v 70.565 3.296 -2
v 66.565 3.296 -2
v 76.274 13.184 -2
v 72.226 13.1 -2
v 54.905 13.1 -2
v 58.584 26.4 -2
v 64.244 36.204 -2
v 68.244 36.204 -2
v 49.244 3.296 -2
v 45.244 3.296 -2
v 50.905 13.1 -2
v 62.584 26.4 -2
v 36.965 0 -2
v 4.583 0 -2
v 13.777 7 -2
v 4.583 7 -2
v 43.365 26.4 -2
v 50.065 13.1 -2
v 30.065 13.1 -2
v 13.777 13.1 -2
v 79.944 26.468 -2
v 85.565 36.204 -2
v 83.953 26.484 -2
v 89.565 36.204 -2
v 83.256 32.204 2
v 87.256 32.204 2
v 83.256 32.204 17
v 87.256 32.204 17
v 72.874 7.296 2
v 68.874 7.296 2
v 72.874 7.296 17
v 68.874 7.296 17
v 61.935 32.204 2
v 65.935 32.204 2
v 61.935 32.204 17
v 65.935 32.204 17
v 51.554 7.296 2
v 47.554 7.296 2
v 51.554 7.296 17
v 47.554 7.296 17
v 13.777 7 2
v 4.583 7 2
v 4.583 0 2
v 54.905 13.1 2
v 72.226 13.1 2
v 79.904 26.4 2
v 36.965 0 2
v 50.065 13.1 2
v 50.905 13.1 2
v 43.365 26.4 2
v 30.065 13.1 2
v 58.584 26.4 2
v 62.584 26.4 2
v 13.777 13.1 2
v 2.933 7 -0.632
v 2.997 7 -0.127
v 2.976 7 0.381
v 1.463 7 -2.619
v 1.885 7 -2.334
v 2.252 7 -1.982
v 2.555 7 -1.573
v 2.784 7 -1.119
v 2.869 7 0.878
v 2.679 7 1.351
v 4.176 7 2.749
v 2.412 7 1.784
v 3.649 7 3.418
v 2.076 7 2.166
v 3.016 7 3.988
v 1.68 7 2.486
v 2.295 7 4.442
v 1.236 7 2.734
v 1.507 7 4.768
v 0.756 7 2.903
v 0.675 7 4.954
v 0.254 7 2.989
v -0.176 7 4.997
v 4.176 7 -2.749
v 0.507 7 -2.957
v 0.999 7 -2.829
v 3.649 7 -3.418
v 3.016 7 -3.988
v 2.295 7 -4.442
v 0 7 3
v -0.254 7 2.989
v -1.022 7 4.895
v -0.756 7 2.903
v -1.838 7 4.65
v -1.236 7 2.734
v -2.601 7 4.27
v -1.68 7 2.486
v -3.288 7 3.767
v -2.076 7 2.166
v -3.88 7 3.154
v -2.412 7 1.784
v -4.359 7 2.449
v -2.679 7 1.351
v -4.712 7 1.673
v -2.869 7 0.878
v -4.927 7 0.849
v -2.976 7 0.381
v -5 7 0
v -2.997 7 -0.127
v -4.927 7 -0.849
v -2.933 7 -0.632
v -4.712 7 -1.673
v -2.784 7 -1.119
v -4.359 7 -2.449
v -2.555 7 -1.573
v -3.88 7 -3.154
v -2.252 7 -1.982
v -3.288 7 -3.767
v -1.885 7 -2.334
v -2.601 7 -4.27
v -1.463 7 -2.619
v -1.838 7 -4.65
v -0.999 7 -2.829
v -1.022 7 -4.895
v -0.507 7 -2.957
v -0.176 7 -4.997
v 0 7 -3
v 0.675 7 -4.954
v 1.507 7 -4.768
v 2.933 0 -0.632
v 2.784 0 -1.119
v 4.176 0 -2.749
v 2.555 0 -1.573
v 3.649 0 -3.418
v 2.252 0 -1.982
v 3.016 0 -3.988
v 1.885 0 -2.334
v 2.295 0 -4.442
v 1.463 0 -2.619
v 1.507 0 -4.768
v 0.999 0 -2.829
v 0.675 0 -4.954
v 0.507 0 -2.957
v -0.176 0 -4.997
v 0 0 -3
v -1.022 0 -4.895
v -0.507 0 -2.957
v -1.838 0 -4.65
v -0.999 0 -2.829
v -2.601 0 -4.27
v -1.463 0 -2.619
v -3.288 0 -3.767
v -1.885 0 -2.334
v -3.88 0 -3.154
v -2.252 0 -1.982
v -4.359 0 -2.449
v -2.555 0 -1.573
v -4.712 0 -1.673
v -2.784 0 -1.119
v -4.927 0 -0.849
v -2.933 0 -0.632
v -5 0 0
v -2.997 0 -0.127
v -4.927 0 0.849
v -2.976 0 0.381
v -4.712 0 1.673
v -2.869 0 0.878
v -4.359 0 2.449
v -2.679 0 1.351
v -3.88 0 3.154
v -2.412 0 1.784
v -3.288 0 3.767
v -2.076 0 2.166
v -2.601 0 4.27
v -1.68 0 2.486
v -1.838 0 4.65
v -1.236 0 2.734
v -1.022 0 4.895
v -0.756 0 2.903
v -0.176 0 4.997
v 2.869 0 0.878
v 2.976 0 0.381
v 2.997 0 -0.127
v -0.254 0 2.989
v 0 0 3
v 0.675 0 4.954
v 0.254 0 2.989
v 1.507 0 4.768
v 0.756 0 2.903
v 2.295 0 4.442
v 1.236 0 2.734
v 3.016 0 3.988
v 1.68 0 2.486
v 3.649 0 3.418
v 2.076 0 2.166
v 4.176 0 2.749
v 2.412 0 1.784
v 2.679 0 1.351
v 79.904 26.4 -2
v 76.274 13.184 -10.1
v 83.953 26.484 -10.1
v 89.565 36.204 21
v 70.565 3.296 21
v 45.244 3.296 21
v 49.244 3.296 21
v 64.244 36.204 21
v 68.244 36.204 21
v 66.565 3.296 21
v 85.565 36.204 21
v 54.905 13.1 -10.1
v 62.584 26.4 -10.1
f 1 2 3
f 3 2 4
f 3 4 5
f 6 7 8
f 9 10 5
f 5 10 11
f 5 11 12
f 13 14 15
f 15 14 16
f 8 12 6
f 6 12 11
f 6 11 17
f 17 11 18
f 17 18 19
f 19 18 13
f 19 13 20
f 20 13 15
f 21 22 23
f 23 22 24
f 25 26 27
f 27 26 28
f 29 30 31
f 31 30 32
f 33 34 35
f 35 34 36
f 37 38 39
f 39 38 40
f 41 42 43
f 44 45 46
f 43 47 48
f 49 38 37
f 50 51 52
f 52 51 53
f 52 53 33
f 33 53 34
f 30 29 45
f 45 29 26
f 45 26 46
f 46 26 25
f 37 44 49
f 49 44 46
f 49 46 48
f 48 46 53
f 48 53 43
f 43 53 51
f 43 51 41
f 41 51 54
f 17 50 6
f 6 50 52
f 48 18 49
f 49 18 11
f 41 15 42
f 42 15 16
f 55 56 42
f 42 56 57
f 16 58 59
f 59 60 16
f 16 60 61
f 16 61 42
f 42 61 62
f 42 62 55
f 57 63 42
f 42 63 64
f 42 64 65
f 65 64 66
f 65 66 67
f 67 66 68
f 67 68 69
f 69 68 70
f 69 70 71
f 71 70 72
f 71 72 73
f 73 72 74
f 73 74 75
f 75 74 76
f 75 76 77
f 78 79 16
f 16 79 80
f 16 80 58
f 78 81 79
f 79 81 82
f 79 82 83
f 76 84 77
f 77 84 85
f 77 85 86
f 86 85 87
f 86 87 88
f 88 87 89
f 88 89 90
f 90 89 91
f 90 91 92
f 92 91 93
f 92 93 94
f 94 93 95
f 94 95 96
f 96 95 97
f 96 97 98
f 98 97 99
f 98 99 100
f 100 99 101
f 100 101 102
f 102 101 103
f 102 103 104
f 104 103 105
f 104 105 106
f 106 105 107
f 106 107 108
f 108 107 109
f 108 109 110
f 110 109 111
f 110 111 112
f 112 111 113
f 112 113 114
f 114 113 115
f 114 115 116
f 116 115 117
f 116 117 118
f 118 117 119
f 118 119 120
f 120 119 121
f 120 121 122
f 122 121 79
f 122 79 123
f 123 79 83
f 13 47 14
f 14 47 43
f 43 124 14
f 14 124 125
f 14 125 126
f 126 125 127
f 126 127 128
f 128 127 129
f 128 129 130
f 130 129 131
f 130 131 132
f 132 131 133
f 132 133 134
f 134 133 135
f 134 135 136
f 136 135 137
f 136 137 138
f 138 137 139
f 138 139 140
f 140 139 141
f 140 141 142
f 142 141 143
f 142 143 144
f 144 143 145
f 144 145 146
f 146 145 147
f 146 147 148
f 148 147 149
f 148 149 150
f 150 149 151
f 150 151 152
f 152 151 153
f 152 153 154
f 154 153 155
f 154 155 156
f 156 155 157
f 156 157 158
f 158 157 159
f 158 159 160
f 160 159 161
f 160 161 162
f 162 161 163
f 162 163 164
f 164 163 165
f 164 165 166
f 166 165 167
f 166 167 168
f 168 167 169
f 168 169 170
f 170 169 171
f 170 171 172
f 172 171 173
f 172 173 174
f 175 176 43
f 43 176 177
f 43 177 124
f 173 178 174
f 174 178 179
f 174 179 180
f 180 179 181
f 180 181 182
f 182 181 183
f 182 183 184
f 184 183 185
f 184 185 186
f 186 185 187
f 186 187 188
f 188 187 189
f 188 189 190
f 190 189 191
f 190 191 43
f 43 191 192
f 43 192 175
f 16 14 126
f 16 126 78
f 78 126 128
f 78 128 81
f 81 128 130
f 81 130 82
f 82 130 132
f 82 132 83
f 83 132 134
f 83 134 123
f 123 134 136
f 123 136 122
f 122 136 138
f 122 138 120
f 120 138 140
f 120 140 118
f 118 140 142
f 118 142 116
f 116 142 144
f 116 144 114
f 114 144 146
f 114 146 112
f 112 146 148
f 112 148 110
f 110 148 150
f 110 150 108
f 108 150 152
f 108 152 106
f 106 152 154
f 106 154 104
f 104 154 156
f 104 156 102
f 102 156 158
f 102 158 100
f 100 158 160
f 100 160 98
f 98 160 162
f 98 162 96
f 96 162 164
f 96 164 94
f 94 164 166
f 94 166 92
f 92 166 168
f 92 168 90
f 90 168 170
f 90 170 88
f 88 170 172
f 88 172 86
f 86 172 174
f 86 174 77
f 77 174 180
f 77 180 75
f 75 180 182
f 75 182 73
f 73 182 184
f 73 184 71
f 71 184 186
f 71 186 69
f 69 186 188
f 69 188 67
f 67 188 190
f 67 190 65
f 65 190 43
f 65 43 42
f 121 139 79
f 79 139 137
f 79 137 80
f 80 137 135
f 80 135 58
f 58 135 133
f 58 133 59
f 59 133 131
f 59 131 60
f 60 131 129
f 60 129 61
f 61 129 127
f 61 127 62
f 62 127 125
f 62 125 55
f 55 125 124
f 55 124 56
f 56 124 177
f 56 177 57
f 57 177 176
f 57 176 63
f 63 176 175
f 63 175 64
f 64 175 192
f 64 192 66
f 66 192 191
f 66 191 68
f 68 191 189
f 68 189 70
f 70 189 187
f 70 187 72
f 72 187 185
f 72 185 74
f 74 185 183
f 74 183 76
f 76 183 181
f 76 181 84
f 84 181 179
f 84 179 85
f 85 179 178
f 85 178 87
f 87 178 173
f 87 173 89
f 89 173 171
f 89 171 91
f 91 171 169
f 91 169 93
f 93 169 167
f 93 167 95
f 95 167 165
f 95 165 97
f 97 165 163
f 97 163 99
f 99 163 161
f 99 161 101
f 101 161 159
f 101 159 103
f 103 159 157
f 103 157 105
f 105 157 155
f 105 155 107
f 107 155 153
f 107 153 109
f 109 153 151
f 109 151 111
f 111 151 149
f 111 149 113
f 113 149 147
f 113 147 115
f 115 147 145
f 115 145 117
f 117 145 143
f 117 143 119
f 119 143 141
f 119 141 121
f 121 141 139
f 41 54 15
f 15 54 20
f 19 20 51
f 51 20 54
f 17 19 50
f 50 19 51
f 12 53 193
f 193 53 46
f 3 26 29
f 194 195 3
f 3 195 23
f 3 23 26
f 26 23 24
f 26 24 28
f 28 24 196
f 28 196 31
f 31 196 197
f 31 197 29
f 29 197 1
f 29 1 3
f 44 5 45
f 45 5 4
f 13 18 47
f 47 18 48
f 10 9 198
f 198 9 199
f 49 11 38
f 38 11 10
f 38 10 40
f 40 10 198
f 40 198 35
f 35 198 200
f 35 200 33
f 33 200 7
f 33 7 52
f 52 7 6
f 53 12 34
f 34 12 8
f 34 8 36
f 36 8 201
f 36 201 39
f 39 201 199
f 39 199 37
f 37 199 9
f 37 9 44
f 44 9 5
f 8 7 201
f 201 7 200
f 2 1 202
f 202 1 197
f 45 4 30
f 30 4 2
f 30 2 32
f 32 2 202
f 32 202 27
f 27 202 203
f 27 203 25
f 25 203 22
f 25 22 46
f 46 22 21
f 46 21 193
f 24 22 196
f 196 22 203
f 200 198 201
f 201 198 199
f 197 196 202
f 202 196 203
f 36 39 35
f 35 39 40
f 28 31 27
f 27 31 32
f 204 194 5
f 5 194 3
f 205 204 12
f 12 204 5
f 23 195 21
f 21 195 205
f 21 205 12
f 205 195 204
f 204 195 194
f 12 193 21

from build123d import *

# Parameters (mm, degrees)
SKETCH1_R           = 5
SKETCH1_R_2         = 3
BOSS_EXTRUDE1_DEPTH = 7
SKETCH2_R           = 3
BOSS_EXTRUDE2_DEPTH = 7
SKETCH3_W           = 16.288395929
SKETCH3_H           = 13.1
BOSS_EXTRUDE3_DEPTH = 4
SKETCH4_W           = 4.517614974
SKETCH4_H           = 7
CUT_EXTRUDE1_DEPTH  = 4
BOSS_EXTRUDE4_DEPTH = 4
BOSS_EXTRUDE5_DEPTH = 4
BOSS_EXTRUDE6_DEPTH = 19
BOSS_EXTRUDE7_DEPTH = 4
BOSS_EXTRUDE8_DEPTH = 8.1


with BuildPart() as part:
    # Sketch1 → Boss-Extrude1 (new body)
    with BuildSketch(Plane(origin=(0, 0, 0), x_dir=(1, 0, 0), z_dir=(0, 1, 0))):
        with Locations(Location((0, 0, 0), (0, 0, 270))):
            Circle(SKETCH1_R)
        with Locations(Location((0, 0, 0), (0, 0, 270))):
            Circle(SKETCH1_R_2, mode=Mode.SUBTRACT)
    extrude(amount=BOSS_EXTRUDE1_DEPTH)

    # Sketch2 → Boss-Extrude2 (add, through all)
    with BuildSketch(Plane(origin=(0, 7, 0), x_dir=(1, 0, 0), z_dir=(0, 1, 0))):
        with BuildLine():
            Line((4.582575695, -2), (34.582575695, -2))
            Line((34.582575695, -2), (34.582575695, 2))
            Line((34.582575695, 2), (4.582575695, 2))
            ThreePointArc((4.582575695, 2), (-5, 0), (4.582575695, -2))
        make_face()
        with Locations(Location((0, 0, 0), (0, 0, 270))):
            Circle(SKETCH2_R, mode=Mode.SUBTRACT)
    extrude(amount=-BOSS_EXTRUDE2_DEPTH)

    # Sketch3 → Boss-Extrude3 (add)
    with BuildSketch(Plane.XY.offset(2)):
        with Locations((21.920762757, 6.55)):
            Rectangle(SKETCH3_W, SKETCH3_H)
    extrude(amount=-BOSS_EXTRUDE3_DEPTH)

    # Sketch4 → Cut-Extrude1 (cut)
    with BuildSketch(Plane.XY.offset(2)):
        with Locations((32.323768208, 3.5)):
            Rectangle(SKETCH4_W, SKETCH4_H)
    extrude(amount=-CUT_EXTRUDE1_DEPTH, mode=Mode.SUBTRACT)

    # Sketch5 → Boss-Extrude4 (add)
    with BuildSketch(Plane.XY.offset(2)):
        Polygon((30.064960721, 13.1), (30.064960721, 0), (36.964960721, 0), (50.064960721, 13.1), (76.225581431, 13.1), (80.064960721, 19.75), (80.064960721, 26.4), (43.364960721, 26.4), align=None)
    extrude(amount=-BOSS_EXTRUDE4_DEPTH)

    # Sketch6 → Boss-Extrude5 (add)
    with BuildSketch(Plane.XY.offset(2)):
        Polygon((64.244452646, 36.204482672), (68.244452646, 36.204482672), (49.244452646, 3.295517328), (45.244452646, 3.295517328), align=None)
        Polygon((85.564960721, 36.204482672), (89.564960721, 36.204482672), (70.564960721, 3.295517328), (66.564960721, 3.295517328), align=None)
    extrude(amount=-BOSS_EXTRUDE5_DEPTH)

    # Sketch7 → Boss-Extrude6 (add)
    with BuildSketch(Plane.XY.offset(2)):
        Polygon((68.244452646, 36.204482672), (64.244452646, 36.204482672), (61.935051569, 32.204482672), (65.935051569, 32.204482672), align=None)
        Polygon((85.564960721, 36.204482672), (89.564960721, 36.204482672), (87.255559645, 32.204482672), (83.255559645, 32.204482672), align=None)
        Polygon((66.564960721, 3.295517328), (70.564960721, 3.295517328), (72.874361798, 7.295517328), (68.874361798, 7.295517328), align=None)
        Polygon((45.244452646, 3.295517328), (49.244452646, 3.295517328), (51.553853723, 7.295517328), (47.553853723, 7.295517328), align=None)
    extrude(amount=BOSS_EXTRUDE6_DEPTH)

    # Sketch8 → Boss-Extrude7 (add)
    with BuildSketch(Plane.XY.offset(21)):
        Polygon((64.244452646, 36.204482672), (68.244452646, 36.204482672), (49.244452646, 3.295517328), (45.244452646, 3.295517328), align=None)
        Polygon((85.564960721, 36.204482672), (89.564960721, 36.204482672), (70.564960721, 3.295517328), (66.564960721, 3.295517328), align=None)
    extrude(amount=-BOSS_EXTRUDE7_DEPTH)

    # Sketch9 → Boss-Extrude8 (add)
    with BuildSketch(Plane(origin=(0, 0, -2), x_dir=(-1, 0, 0), z_dir=(0, 0, -1))):
        Polygon((-54.905073356, 13.1), (-62.583831936, 26.4), (-83.95273694, 26.483825938), (-76.273978359, 13.183825938), align=None)
    extrude(amount=BOSS_EXTRUDE8_DEPTH)


solid = part.part
